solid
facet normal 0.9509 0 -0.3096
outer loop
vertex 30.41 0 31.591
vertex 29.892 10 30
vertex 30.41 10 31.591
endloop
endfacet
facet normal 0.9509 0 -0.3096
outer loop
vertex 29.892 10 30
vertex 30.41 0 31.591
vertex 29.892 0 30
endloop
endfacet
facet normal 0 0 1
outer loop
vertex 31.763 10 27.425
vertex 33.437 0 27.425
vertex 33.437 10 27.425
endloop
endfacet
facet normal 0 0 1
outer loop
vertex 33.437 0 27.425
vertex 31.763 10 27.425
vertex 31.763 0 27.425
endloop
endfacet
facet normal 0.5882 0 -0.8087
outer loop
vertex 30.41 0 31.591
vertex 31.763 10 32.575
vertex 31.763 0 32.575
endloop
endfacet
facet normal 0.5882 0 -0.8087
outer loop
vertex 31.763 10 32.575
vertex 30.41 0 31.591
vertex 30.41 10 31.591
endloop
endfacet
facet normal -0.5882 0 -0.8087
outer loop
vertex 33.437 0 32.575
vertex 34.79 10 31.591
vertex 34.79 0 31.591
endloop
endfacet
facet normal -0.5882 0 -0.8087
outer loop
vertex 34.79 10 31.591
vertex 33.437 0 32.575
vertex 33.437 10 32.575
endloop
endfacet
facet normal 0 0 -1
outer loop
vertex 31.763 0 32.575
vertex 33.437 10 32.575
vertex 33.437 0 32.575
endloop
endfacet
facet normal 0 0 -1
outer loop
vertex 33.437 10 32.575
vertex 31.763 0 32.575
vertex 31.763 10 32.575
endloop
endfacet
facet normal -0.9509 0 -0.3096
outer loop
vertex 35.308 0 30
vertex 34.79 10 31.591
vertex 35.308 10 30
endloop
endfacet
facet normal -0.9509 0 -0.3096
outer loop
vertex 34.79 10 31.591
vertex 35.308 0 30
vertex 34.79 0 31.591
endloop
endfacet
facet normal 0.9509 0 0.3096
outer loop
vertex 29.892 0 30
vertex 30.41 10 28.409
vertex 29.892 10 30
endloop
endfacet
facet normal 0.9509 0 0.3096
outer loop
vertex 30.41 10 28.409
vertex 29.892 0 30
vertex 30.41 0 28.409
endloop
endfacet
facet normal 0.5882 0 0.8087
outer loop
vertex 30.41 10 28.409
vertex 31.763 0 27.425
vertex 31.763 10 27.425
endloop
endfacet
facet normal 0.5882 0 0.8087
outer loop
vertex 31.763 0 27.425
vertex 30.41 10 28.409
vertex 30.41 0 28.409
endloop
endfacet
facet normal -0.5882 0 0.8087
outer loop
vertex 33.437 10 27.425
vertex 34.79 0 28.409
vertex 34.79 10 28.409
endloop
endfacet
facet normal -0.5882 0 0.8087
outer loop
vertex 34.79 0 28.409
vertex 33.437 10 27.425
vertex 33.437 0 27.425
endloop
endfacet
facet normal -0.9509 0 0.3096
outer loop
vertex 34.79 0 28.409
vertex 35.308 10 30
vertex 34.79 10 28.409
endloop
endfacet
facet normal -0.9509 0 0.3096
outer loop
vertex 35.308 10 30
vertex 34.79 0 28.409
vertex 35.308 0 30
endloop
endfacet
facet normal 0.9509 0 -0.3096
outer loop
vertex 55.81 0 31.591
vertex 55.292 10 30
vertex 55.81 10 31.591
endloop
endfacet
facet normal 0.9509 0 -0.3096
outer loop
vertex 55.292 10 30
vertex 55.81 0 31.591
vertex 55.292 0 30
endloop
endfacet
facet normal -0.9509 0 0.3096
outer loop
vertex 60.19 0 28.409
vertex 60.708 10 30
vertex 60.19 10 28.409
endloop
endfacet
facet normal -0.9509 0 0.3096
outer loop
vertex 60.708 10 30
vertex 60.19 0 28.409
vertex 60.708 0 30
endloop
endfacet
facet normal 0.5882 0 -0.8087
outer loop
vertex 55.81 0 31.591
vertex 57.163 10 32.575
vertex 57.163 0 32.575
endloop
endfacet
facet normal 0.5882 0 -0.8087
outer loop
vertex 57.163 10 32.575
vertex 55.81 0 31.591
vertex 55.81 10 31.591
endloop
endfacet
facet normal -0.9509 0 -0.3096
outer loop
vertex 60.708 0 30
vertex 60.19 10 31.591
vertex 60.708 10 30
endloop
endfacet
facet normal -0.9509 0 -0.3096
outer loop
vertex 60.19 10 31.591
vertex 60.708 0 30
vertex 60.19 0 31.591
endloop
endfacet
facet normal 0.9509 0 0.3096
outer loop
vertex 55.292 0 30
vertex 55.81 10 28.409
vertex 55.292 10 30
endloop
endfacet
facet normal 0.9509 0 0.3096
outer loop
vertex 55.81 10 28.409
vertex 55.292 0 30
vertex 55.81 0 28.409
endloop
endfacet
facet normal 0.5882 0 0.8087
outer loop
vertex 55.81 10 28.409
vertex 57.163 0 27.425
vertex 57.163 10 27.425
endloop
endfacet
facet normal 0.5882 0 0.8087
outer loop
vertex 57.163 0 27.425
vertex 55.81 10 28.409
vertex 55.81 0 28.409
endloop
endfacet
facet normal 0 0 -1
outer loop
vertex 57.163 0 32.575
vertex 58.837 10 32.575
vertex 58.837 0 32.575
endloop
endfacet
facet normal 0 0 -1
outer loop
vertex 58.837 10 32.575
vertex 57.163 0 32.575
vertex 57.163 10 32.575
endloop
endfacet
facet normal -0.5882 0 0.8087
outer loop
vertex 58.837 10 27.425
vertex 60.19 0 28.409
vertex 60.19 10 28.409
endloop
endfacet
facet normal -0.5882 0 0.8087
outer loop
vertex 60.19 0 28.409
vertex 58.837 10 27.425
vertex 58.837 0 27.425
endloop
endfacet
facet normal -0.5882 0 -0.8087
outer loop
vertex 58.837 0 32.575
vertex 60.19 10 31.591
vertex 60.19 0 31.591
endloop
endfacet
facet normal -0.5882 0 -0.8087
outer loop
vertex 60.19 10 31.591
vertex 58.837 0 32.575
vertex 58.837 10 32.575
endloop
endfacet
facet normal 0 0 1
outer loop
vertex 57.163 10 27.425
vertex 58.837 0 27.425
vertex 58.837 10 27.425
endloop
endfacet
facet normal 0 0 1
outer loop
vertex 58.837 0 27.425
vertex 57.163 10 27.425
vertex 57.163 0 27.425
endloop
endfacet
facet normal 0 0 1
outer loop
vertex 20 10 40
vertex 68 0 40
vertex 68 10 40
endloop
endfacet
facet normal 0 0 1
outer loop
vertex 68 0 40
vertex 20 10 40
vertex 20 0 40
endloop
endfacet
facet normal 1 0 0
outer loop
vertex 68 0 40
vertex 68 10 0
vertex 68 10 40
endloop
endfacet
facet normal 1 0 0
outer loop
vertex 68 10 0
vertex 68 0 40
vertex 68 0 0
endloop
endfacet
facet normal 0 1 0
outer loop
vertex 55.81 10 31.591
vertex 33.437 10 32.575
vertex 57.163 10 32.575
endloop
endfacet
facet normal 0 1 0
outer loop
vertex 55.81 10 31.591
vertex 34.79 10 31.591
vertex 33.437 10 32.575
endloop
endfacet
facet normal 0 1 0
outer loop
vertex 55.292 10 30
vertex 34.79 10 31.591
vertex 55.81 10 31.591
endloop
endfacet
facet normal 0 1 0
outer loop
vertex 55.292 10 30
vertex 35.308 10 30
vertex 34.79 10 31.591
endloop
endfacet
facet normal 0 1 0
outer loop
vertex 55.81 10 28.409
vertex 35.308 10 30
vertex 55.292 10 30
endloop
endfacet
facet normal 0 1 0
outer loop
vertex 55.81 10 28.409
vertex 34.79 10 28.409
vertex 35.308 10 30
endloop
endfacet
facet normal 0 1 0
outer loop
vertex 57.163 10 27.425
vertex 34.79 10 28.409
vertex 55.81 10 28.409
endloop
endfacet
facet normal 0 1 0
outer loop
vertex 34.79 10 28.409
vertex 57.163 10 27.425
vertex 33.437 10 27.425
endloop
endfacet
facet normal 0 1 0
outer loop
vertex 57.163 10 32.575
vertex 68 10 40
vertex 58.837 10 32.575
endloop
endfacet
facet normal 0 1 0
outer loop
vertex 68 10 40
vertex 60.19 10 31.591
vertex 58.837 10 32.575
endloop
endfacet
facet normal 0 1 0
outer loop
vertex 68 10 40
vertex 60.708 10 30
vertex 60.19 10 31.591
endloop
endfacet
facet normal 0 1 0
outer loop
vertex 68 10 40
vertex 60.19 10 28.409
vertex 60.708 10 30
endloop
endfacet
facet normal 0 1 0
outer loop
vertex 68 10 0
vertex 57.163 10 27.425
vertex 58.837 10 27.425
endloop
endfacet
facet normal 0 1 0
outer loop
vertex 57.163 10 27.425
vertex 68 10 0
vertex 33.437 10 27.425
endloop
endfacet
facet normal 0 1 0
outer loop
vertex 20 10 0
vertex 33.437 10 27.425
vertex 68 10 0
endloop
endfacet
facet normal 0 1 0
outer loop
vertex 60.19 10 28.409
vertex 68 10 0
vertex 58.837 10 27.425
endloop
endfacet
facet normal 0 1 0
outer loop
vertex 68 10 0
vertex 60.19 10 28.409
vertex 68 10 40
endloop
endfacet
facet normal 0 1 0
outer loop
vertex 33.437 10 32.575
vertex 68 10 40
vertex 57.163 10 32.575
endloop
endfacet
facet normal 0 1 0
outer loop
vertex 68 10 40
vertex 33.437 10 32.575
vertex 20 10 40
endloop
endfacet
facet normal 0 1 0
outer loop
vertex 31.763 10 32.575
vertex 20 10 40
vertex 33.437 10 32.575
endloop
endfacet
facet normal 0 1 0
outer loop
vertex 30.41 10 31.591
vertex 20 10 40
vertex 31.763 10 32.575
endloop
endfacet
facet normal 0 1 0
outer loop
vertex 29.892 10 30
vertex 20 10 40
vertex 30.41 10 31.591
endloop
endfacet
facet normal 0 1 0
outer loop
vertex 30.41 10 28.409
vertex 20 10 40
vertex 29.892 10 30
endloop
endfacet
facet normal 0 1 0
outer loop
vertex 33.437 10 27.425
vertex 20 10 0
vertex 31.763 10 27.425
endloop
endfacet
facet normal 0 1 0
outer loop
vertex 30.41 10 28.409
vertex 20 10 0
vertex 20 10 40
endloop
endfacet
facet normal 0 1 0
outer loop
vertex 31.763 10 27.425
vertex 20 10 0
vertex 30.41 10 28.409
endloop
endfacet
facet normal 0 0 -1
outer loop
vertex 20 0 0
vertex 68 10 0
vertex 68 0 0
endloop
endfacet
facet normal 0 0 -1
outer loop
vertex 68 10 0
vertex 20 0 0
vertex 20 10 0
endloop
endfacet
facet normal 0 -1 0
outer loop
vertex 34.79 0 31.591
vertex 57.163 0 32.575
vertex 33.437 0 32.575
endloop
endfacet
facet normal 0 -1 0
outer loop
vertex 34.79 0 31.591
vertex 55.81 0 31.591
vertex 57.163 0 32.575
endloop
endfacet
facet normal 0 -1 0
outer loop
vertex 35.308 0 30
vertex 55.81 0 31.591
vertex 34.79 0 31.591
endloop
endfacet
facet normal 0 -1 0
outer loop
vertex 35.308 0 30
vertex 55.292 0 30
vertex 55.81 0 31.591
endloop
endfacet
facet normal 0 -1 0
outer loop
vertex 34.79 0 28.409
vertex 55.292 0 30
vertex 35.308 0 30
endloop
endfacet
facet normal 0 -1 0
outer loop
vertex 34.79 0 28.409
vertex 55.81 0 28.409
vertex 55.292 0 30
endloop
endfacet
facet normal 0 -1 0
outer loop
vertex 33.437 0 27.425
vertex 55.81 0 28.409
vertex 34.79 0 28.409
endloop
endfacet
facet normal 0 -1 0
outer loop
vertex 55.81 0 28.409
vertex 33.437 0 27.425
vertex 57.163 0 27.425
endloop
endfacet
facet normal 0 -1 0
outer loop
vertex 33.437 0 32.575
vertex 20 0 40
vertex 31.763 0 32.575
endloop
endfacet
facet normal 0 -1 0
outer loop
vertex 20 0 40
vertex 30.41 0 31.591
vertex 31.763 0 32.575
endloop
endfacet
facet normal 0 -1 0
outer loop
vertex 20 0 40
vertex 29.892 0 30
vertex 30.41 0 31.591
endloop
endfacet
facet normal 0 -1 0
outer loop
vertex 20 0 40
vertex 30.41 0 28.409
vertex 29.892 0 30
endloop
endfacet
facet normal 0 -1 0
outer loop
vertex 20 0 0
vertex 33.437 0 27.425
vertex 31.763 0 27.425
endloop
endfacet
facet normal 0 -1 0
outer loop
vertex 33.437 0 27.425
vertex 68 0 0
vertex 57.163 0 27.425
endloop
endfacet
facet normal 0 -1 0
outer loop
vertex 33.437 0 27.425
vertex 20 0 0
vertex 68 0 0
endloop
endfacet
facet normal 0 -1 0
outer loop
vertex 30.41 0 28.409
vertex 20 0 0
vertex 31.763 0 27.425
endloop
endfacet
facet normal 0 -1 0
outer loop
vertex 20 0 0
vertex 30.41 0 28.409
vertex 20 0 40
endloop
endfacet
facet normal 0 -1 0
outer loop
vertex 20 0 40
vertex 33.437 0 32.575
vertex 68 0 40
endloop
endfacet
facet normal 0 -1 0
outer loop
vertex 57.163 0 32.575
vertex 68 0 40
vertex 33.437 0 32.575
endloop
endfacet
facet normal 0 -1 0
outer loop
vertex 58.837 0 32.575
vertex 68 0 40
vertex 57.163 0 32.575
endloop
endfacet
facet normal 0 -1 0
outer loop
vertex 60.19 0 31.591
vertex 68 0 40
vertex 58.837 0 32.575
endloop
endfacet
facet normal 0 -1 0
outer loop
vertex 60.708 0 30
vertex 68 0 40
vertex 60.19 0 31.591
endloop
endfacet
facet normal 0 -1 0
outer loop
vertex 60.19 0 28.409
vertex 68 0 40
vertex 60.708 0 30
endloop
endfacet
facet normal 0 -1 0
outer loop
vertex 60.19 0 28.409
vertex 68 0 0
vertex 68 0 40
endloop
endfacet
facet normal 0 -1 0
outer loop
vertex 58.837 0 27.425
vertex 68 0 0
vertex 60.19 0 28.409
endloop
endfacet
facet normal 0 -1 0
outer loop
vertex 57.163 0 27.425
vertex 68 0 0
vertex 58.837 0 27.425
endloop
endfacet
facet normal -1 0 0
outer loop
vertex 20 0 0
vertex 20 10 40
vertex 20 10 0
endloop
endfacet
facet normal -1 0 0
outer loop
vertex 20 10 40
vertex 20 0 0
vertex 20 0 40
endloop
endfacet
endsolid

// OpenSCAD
use <MCAD/polyholes.scad>;



$fn = 100;

thick = 10;

extrusion_w = 40.0; //mm
extrusion_h = 40.0; //mm

frame_mount_bolt_r  =  2.575;    //mm
frame_mount_pitch   = 25.4;    //mm

bearing_o_d   =         22.0;    //mm
bearing_i_d   =          8.0;    //mm
bearing_h     =          7.0;    //mm
bearing_o_tol =          1.0;    //mm

bearing_mount_r = ((bearing_o_d + bearing_o_tol) / 2.0) + thick;

pulley_o_d  = 18.0;  //mm
pulley_i_d  =  8.0;  //mm
pulley_h    = 18.0;  //mm
pulley_t_d  = 12.0;  //mm

ballscrew_length       = 500.0;    //mm
ballscrew_upper_spigot =  20.0;    //mm
ballscrew_lower_spigot =  40.0;    //mm

mount_length = bearing_o_d + (8 * 2.0) + 30.0;
mount_height = extrusion_h;


difference() {
        
        cube([mount_length, thick, mount_height]);
        translate([mount_length - 10.0 - frame_mount_pitch, -1.0, extrusion_h * 3.0/4.0]) rotate([-90, 0 ,0]) {
            polyhole(d = frame_mount_bolt_r * 2.0, h = thick + 2.0);
            translate([frame_mount_pitch, 0 , 0]) polyhole(d = frame_mount_bolt_r * 2.0, h = thick + 2.0);
        }
        cube([20.0, thick, extrusion_h]);
    }
    
    
